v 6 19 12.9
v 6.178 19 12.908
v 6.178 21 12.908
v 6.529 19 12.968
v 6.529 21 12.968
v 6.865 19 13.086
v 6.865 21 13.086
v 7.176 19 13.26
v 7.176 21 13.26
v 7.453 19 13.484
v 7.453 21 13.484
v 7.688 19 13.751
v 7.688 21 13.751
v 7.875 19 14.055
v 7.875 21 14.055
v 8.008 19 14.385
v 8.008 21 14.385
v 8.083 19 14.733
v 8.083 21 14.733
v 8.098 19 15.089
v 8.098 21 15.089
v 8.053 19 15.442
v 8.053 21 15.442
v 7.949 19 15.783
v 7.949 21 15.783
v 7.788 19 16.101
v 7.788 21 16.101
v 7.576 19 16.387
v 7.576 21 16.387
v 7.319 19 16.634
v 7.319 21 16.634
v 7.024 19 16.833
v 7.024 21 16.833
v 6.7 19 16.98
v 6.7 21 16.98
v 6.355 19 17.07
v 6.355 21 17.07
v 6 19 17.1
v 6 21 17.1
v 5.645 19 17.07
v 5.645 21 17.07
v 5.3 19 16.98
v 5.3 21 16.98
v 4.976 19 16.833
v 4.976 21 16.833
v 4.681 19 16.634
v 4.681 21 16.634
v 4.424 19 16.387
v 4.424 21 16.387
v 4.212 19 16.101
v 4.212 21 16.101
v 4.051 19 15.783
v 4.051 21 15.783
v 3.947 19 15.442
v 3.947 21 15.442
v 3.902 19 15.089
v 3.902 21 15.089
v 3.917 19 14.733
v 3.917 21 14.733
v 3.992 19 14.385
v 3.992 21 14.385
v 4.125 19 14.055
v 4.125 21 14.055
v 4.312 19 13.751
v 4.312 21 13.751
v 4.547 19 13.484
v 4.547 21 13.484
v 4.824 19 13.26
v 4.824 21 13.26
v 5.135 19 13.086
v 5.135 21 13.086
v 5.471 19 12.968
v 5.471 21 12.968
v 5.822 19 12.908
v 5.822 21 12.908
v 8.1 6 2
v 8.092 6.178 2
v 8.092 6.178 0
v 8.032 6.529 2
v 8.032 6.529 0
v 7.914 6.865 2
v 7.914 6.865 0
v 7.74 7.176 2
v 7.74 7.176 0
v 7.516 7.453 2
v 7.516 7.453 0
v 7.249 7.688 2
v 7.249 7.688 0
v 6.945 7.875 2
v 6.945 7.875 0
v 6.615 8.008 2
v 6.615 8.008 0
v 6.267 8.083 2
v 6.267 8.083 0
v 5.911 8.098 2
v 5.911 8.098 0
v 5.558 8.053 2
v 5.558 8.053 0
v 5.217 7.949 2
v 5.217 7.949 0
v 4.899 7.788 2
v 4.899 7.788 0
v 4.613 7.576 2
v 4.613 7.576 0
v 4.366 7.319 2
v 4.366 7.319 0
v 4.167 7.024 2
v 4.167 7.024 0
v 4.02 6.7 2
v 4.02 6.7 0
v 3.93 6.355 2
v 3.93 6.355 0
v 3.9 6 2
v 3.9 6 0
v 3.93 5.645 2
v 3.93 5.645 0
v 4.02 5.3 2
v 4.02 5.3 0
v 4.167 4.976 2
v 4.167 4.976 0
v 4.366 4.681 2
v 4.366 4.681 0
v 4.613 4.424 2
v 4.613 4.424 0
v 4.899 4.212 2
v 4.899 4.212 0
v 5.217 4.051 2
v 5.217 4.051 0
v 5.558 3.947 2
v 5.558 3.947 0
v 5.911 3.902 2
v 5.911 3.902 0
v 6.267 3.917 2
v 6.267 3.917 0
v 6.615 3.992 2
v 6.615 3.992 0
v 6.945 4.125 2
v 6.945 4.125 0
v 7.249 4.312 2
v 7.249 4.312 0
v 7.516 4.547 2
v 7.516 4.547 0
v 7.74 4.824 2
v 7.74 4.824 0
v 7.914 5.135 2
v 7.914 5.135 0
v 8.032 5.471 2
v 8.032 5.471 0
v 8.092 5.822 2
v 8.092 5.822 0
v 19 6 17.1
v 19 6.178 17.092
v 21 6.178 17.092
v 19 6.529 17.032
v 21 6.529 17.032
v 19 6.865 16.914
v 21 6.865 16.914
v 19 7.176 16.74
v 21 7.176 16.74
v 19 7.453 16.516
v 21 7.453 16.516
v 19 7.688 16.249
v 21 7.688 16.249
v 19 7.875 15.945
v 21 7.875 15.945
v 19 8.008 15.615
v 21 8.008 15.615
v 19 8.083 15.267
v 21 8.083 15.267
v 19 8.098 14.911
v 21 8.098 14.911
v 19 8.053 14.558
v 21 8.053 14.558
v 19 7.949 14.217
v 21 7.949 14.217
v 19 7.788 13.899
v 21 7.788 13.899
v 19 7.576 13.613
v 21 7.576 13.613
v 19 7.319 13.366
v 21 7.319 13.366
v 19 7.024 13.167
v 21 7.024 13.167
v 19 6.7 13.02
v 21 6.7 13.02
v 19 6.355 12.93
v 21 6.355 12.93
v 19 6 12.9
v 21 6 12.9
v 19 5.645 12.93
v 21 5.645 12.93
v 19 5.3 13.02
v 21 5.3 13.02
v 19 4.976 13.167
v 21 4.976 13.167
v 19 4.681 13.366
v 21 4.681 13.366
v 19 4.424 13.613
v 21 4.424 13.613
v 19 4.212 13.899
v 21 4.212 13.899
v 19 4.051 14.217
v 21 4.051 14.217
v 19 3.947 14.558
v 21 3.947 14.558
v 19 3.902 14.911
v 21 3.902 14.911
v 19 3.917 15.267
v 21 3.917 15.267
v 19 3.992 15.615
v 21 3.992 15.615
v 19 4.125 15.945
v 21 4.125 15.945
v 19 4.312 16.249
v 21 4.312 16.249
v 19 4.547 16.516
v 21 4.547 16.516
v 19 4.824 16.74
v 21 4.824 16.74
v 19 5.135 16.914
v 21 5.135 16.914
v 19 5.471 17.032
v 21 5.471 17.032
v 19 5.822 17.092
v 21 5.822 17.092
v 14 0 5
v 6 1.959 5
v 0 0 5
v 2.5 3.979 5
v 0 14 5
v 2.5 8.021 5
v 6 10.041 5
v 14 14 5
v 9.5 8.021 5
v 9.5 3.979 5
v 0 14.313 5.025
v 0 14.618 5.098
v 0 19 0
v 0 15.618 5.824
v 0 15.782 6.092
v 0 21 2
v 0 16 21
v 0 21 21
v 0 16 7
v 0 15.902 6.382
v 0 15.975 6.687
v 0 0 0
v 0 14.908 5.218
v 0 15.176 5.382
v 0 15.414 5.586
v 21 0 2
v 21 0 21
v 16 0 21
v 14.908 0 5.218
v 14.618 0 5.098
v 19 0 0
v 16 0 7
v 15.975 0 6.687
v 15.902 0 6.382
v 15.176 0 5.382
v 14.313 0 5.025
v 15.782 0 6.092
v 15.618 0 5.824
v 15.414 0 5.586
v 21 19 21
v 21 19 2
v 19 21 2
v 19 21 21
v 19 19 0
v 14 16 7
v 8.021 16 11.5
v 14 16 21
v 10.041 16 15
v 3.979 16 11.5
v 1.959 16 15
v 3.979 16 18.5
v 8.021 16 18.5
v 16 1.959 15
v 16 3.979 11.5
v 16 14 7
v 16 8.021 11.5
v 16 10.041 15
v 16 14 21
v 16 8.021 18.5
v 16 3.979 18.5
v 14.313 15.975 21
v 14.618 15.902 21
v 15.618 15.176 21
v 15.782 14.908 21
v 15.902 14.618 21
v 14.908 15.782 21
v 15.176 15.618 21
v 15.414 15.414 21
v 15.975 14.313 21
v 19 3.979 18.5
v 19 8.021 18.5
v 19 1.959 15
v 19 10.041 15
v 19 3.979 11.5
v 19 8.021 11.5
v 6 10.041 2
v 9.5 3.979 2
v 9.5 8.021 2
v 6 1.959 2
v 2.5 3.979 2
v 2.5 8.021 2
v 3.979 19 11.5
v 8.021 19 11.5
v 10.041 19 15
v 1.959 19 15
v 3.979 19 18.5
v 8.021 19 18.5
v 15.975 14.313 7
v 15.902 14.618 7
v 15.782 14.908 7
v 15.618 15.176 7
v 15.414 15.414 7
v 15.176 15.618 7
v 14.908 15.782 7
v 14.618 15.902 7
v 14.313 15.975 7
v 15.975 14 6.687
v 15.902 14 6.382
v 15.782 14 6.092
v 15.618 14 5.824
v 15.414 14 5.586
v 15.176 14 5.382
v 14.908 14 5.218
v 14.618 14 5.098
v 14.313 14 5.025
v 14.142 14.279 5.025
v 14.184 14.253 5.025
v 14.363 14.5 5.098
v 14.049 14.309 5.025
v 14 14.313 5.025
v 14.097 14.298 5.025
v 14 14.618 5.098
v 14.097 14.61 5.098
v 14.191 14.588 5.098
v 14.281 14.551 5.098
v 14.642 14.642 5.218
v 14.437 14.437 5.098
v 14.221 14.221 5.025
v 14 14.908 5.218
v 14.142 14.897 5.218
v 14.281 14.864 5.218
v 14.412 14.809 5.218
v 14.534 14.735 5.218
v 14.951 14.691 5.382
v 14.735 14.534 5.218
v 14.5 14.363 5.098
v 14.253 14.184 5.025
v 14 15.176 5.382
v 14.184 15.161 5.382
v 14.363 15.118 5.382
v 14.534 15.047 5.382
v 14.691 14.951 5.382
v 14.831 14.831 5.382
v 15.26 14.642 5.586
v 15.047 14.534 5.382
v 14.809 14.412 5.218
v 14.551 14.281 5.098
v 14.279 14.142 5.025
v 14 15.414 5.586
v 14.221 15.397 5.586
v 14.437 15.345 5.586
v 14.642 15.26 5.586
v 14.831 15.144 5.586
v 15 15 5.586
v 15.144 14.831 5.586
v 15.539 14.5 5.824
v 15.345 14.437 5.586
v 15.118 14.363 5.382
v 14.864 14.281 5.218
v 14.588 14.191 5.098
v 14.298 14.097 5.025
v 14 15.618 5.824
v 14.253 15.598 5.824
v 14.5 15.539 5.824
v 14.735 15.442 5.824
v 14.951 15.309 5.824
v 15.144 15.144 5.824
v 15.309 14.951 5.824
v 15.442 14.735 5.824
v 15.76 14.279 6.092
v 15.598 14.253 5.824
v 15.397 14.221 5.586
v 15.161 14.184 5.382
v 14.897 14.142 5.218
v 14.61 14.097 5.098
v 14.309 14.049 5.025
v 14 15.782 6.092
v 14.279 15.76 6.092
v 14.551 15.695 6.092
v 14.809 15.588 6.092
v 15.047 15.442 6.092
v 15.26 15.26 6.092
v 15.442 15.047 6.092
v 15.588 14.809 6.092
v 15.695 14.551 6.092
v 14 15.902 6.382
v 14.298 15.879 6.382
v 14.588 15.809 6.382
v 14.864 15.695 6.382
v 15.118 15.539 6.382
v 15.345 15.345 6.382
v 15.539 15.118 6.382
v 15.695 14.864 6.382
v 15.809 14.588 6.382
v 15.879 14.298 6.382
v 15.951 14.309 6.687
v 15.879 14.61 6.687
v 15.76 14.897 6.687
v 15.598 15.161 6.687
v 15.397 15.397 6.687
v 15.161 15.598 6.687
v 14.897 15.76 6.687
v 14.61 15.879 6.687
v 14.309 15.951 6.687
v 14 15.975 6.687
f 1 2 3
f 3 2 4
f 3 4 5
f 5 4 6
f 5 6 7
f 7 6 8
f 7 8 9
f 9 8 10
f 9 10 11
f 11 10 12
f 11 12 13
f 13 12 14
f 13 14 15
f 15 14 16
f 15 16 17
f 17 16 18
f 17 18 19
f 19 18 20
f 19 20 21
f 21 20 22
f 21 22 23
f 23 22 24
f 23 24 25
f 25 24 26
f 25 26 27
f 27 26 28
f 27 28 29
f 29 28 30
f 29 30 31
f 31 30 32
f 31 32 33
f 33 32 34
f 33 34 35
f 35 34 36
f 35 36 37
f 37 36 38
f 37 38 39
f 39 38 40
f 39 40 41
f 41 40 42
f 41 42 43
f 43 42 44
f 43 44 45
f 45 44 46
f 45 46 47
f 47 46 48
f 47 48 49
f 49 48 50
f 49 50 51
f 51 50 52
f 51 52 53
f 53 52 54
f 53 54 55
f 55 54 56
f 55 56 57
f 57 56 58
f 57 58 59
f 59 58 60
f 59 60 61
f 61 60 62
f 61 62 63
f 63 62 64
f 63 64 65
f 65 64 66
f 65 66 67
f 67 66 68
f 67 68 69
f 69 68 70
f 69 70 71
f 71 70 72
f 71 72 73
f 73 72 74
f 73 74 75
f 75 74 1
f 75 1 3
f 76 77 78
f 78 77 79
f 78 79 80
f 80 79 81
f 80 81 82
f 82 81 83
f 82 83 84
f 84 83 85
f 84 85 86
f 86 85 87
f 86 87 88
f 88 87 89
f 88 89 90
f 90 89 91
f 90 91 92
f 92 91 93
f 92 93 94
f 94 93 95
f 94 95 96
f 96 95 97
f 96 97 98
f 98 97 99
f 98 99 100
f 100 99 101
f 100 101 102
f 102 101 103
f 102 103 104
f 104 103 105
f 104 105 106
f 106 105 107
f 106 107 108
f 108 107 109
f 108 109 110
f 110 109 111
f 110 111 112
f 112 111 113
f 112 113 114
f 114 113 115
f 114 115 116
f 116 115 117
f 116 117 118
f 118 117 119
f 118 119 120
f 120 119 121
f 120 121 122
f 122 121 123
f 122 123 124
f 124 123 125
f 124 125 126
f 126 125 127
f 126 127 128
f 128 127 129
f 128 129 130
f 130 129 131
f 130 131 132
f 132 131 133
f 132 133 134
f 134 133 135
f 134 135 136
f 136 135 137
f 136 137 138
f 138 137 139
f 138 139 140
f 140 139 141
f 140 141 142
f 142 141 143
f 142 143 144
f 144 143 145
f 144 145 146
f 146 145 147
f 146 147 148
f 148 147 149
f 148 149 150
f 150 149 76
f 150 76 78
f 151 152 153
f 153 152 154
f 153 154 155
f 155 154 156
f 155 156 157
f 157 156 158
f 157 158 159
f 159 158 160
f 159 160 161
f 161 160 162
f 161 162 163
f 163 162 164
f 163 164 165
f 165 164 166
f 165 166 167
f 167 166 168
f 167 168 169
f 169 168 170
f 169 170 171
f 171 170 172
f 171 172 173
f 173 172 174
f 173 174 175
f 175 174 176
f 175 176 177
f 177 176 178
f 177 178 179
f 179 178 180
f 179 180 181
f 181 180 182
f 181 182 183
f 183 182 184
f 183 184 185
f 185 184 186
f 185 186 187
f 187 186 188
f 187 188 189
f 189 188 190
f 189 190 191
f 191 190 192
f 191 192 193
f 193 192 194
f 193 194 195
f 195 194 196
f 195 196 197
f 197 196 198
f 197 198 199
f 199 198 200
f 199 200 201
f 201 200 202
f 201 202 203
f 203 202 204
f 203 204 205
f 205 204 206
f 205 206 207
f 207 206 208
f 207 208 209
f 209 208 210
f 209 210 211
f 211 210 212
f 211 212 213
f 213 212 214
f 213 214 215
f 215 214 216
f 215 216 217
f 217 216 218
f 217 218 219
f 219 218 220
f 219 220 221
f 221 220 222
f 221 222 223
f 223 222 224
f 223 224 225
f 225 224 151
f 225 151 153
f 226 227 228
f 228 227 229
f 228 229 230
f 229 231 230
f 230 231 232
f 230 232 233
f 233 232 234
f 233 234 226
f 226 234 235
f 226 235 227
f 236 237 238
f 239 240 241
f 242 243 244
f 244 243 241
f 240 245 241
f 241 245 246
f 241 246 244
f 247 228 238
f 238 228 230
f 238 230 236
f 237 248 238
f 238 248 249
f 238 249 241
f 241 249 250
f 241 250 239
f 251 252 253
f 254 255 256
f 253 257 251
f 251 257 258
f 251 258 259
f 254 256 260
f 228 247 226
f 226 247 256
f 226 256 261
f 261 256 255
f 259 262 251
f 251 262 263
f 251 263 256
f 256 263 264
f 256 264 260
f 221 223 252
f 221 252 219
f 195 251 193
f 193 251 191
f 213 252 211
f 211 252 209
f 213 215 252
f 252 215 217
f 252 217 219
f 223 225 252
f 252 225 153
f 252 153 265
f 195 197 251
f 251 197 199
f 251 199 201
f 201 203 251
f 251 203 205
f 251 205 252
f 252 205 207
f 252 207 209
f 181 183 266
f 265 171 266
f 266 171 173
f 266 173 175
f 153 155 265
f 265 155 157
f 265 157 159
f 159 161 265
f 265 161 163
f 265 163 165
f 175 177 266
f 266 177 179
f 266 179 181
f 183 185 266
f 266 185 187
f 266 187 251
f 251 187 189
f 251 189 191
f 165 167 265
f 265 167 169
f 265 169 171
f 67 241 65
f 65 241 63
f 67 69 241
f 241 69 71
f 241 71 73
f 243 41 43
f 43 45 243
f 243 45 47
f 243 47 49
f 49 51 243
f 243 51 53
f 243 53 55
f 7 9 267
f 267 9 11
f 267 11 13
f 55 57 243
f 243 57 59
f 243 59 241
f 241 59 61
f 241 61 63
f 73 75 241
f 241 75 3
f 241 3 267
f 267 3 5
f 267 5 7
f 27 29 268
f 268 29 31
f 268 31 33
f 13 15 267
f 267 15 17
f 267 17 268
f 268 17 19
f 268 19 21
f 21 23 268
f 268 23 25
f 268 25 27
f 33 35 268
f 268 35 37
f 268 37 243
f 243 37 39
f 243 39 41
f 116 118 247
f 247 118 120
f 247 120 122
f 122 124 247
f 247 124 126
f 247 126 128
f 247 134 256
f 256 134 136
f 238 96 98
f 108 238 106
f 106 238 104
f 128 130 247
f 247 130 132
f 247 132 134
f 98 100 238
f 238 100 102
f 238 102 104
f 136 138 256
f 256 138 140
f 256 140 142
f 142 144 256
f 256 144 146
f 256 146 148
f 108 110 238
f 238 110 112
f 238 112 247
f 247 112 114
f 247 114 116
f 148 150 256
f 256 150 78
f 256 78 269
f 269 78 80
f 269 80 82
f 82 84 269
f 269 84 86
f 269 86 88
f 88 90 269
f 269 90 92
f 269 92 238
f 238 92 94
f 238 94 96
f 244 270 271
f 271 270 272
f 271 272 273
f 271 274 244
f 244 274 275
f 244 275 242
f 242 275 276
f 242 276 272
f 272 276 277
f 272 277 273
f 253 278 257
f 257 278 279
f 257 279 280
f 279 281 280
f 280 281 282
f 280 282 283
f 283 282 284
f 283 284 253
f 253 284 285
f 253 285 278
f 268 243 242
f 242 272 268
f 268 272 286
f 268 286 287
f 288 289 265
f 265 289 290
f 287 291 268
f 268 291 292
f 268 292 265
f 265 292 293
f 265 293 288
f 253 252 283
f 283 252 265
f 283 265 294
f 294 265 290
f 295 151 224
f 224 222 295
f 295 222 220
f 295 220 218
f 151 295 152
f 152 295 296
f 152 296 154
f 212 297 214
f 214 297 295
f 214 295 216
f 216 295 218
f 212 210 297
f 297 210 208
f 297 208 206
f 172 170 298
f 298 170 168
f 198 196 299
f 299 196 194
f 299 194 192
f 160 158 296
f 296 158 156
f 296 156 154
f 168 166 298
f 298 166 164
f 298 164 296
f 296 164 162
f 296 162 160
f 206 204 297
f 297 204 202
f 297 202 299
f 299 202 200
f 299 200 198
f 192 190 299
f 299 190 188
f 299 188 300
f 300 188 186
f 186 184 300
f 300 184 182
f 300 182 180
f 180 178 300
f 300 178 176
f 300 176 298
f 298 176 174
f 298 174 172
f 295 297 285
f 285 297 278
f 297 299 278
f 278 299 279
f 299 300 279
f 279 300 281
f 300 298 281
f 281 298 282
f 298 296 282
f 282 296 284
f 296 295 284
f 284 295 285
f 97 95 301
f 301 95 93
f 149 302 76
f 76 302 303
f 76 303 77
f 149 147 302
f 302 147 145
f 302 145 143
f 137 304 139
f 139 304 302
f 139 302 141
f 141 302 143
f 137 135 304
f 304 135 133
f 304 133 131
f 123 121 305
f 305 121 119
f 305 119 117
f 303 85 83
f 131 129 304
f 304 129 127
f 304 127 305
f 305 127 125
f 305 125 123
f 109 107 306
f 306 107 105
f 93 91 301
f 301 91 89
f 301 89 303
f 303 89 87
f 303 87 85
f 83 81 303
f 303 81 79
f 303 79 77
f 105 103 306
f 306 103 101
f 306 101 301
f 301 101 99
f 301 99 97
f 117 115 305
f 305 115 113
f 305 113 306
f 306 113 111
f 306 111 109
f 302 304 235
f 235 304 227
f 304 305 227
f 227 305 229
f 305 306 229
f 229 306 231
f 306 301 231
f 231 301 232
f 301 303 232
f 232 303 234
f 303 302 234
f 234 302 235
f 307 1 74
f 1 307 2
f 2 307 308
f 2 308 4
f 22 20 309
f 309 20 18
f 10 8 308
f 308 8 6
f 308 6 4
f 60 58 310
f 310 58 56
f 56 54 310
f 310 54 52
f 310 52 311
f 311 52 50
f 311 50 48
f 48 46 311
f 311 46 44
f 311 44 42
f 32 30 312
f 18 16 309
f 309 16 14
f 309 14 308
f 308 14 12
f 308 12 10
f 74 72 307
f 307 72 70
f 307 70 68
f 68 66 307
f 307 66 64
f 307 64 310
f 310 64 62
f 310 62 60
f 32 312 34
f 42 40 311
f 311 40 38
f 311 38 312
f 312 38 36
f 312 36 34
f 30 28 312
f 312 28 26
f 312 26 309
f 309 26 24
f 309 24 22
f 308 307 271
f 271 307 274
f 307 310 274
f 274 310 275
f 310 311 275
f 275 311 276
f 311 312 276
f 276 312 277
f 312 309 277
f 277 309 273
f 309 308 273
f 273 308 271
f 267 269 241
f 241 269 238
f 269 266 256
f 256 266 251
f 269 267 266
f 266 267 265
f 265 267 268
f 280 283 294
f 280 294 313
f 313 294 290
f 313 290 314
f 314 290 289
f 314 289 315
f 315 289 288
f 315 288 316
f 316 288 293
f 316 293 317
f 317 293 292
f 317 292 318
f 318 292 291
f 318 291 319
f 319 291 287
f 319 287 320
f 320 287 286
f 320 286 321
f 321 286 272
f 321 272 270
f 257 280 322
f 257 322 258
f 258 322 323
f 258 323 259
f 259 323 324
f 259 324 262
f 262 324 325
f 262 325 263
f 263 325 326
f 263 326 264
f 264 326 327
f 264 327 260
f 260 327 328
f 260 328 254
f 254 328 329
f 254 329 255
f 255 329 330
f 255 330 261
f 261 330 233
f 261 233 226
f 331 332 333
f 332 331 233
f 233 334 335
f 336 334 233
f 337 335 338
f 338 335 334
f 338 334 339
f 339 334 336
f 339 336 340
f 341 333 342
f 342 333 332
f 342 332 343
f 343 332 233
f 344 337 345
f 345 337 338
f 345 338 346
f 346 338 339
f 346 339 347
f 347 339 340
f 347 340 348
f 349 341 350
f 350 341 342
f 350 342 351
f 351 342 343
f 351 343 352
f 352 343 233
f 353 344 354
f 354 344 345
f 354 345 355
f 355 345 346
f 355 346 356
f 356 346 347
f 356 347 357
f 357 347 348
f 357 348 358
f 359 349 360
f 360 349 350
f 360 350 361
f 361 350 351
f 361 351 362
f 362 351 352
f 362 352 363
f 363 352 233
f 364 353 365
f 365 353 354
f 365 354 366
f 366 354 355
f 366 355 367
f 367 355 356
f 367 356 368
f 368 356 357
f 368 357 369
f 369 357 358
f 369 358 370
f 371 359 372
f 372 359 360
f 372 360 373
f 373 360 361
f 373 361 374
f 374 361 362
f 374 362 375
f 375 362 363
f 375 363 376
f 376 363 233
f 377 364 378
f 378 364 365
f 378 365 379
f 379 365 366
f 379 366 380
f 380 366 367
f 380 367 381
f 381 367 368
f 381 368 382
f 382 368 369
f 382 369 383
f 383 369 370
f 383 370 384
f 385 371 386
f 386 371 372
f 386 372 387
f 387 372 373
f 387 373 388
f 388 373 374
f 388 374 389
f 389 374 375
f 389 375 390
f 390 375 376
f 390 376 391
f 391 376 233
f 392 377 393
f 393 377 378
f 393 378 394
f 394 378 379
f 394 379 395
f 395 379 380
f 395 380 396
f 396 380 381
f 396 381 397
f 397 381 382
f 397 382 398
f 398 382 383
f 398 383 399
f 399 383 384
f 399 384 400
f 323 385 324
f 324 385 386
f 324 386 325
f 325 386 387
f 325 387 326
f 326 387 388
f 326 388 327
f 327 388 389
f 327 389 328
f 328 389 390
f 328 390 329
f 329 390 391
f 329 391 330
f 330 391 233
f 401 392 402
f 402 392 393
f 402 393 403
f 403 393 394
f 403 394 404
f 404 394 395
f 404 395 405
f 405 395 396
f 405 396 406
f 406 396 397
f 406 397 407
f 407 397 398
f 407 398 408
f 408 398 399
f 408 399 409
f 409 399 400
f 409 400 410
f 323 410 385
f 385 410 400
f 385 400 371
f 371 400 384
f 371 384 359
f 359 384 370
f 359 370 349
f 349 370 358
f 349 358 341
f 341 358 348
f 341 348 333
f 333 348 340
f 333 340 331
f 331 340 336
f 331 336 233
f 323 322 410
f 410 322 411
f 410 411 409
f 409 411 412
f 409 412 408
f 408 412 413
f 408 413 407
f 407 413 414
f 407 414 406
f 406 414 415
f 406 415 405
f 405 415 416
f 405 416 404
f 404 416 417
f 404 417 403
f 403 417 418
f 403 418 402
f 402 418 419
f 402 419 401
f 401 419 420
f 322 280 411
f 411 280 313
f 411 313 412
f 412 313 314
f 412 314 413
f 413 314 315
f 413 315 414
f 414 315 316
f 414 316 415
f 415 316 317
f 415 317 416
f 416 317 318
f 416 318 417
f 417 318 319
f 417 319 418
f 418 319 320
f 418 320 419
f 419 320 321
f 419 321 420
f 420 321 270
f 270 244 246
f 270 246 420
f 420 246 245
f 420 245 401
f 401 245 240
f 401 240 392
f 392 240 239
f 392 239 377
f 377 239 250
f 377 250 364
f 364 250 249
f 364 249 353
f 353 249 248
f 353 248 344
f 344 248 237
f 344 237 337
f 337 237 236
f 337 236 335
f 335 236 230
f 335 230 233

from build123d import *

# Parameters (mm, degrees)
SKETCH1_W           = 21
SKETCH1_H           = 21
BOSS_EXTRUDE1_DEPTH = 5
BOSS_EXTRUDE2_DEPTH = 16
SKETCH3_R           = 2.1
CUT_EXTRUDE1_DEPTH  = 3
SKETCH4_R           = 2.1
CUT_EXTRUDE2_DEPTH  = 3
SKETCH5_R           = 2.1
CUT_EXTRUDE3_DEPTH  = 3
CUT_EXTRUDE4_DEPTH  = 3
CUT_EXTRUDE5_DEPTH  = 3
CUT_EXTRUDE6_DEPTH  = 3
CHAMFER1_SIZE       = 2
FILLET1_R           = 2


with BuildPart() as part:
    # Sketch1 → Boss-Extrude1 (new body)
    with BuildSketch(Plane.XY):
        with Locations((10.5, 10.5)):
            Rectangle(SKETCH1_W, SKETCH1_H)
    extrude(amount=BOSS_EXTRUDE1_DEPTH)

    # Sketch2 → Boss-Extrude2 (add)
    with BuildSketch(Plane.XY.offset(5)):
        Polygon((0, 21), (21, 21), (21, 0), (16, 0), (16, 16), (0, 16), align=None)
    extrude(amount=BOSS_EXTRUDE2_DEPTH)

    # Sketch3 → Cut-Extrude1 (cut)
    with BuildSketch(Plane(origin=(0, 21, 0), x_dir=(1, 0, 0), z_dir=(0, 1, 0))):
        with Locations((6, -15)):
            Circle(SKETCH3_R)
    extrude(amount=-CUT_EXTRUDE1_DEPTH, mode=Mode.SUBTRACT)

    # Sketch4 → Cut-Extrude2 (cut)
    with BuildSketch(Plane(origin=(21, 0, 0), x_dir=(0, 0, -1), z_dir=(1, 0, 0))):
        with Locations((-15, 6)):
            Circle(SKETCH4_R)
    extrude(amount=-CUT_EXTRUDE2_DEPTH, mode=Mode.SUBTRACT)

    # Sketch5 → Cut-Extrude3 (cut)
    with BuildSketch(Plane(origin=(0, 0, 0), x_dir=(-1, 0, 0), z_dir=(0, 0, -1))):
        with Locations((-6, 6)):
            Circle(SKETCH5_R)
    extrude(amount=-CUT_EXTRUDE3_DEPTH, mode=Mode.SUBTRACT)

    # Sketch6 → Cut-Extrude4 (cut)
    with BuildSketch(Plane.ZY.offset(-16)):
        Polygon((18.5, 3.979274058), (18.5, 8.020725942), (15, 10.041451884), (11.5, 8.020725942), (11.5, 3.979274058), (15, 1.958548116), align=None)
    extrude(amount=-CUT_EXTRUDE4_DEPTH, mode=Mode.SUBTRACT)

    # Sketch7 → Cut-Extrude5 (cut)
    with BuildSketch(Plane.XY.offset(5)):
        Polygon((9.5, 3.979274058), (9.5, 8.020725942), (6, 10.041451884), (2.5, 8.020725942), (2.5, 3.979274058), (6, 1.958548116), align=None)
    extrude(amount=-CUT_EXTRUDE5_DEPTH, mode=Mode.SUBTRACT)

    # Sketch8 → Cut-Extrude6 (cut)
    with BuildSketch(Plane.XZ.offset(-16)):
        Polygon((8.020725942, 11.5), (10.041451884, 15), (8.020725942, 18.5), (3.979274058, 18.5), (1.958548116, 15), (3.979274058, 11.5), align=None)
    extrude(amount=-CUT_EXTRUDE6_DEPTH, mode=Mode.SUBTRACT)

    # Chamfer1
    chamfer1_edges = [part.edges().sort_by_distance(p)[0] for p in [
        (10.5, 21, 0),
        (21, 10.5, 0),
        (21, 21, 10.5),
    ]]
    chamfer(chamfer1_edges, length=CHAMFER1_SIZE)

    # Fillet1
    fillet1_edges = [part.edges().sort_by_distance(p)[0] for p in [
        (8, 16, 5),
        (16, 8, 5),
        (16, 16, 13),
    ]]
    fillet(fillet1_edges, radius=FILLET1_R)


solid = part.part
